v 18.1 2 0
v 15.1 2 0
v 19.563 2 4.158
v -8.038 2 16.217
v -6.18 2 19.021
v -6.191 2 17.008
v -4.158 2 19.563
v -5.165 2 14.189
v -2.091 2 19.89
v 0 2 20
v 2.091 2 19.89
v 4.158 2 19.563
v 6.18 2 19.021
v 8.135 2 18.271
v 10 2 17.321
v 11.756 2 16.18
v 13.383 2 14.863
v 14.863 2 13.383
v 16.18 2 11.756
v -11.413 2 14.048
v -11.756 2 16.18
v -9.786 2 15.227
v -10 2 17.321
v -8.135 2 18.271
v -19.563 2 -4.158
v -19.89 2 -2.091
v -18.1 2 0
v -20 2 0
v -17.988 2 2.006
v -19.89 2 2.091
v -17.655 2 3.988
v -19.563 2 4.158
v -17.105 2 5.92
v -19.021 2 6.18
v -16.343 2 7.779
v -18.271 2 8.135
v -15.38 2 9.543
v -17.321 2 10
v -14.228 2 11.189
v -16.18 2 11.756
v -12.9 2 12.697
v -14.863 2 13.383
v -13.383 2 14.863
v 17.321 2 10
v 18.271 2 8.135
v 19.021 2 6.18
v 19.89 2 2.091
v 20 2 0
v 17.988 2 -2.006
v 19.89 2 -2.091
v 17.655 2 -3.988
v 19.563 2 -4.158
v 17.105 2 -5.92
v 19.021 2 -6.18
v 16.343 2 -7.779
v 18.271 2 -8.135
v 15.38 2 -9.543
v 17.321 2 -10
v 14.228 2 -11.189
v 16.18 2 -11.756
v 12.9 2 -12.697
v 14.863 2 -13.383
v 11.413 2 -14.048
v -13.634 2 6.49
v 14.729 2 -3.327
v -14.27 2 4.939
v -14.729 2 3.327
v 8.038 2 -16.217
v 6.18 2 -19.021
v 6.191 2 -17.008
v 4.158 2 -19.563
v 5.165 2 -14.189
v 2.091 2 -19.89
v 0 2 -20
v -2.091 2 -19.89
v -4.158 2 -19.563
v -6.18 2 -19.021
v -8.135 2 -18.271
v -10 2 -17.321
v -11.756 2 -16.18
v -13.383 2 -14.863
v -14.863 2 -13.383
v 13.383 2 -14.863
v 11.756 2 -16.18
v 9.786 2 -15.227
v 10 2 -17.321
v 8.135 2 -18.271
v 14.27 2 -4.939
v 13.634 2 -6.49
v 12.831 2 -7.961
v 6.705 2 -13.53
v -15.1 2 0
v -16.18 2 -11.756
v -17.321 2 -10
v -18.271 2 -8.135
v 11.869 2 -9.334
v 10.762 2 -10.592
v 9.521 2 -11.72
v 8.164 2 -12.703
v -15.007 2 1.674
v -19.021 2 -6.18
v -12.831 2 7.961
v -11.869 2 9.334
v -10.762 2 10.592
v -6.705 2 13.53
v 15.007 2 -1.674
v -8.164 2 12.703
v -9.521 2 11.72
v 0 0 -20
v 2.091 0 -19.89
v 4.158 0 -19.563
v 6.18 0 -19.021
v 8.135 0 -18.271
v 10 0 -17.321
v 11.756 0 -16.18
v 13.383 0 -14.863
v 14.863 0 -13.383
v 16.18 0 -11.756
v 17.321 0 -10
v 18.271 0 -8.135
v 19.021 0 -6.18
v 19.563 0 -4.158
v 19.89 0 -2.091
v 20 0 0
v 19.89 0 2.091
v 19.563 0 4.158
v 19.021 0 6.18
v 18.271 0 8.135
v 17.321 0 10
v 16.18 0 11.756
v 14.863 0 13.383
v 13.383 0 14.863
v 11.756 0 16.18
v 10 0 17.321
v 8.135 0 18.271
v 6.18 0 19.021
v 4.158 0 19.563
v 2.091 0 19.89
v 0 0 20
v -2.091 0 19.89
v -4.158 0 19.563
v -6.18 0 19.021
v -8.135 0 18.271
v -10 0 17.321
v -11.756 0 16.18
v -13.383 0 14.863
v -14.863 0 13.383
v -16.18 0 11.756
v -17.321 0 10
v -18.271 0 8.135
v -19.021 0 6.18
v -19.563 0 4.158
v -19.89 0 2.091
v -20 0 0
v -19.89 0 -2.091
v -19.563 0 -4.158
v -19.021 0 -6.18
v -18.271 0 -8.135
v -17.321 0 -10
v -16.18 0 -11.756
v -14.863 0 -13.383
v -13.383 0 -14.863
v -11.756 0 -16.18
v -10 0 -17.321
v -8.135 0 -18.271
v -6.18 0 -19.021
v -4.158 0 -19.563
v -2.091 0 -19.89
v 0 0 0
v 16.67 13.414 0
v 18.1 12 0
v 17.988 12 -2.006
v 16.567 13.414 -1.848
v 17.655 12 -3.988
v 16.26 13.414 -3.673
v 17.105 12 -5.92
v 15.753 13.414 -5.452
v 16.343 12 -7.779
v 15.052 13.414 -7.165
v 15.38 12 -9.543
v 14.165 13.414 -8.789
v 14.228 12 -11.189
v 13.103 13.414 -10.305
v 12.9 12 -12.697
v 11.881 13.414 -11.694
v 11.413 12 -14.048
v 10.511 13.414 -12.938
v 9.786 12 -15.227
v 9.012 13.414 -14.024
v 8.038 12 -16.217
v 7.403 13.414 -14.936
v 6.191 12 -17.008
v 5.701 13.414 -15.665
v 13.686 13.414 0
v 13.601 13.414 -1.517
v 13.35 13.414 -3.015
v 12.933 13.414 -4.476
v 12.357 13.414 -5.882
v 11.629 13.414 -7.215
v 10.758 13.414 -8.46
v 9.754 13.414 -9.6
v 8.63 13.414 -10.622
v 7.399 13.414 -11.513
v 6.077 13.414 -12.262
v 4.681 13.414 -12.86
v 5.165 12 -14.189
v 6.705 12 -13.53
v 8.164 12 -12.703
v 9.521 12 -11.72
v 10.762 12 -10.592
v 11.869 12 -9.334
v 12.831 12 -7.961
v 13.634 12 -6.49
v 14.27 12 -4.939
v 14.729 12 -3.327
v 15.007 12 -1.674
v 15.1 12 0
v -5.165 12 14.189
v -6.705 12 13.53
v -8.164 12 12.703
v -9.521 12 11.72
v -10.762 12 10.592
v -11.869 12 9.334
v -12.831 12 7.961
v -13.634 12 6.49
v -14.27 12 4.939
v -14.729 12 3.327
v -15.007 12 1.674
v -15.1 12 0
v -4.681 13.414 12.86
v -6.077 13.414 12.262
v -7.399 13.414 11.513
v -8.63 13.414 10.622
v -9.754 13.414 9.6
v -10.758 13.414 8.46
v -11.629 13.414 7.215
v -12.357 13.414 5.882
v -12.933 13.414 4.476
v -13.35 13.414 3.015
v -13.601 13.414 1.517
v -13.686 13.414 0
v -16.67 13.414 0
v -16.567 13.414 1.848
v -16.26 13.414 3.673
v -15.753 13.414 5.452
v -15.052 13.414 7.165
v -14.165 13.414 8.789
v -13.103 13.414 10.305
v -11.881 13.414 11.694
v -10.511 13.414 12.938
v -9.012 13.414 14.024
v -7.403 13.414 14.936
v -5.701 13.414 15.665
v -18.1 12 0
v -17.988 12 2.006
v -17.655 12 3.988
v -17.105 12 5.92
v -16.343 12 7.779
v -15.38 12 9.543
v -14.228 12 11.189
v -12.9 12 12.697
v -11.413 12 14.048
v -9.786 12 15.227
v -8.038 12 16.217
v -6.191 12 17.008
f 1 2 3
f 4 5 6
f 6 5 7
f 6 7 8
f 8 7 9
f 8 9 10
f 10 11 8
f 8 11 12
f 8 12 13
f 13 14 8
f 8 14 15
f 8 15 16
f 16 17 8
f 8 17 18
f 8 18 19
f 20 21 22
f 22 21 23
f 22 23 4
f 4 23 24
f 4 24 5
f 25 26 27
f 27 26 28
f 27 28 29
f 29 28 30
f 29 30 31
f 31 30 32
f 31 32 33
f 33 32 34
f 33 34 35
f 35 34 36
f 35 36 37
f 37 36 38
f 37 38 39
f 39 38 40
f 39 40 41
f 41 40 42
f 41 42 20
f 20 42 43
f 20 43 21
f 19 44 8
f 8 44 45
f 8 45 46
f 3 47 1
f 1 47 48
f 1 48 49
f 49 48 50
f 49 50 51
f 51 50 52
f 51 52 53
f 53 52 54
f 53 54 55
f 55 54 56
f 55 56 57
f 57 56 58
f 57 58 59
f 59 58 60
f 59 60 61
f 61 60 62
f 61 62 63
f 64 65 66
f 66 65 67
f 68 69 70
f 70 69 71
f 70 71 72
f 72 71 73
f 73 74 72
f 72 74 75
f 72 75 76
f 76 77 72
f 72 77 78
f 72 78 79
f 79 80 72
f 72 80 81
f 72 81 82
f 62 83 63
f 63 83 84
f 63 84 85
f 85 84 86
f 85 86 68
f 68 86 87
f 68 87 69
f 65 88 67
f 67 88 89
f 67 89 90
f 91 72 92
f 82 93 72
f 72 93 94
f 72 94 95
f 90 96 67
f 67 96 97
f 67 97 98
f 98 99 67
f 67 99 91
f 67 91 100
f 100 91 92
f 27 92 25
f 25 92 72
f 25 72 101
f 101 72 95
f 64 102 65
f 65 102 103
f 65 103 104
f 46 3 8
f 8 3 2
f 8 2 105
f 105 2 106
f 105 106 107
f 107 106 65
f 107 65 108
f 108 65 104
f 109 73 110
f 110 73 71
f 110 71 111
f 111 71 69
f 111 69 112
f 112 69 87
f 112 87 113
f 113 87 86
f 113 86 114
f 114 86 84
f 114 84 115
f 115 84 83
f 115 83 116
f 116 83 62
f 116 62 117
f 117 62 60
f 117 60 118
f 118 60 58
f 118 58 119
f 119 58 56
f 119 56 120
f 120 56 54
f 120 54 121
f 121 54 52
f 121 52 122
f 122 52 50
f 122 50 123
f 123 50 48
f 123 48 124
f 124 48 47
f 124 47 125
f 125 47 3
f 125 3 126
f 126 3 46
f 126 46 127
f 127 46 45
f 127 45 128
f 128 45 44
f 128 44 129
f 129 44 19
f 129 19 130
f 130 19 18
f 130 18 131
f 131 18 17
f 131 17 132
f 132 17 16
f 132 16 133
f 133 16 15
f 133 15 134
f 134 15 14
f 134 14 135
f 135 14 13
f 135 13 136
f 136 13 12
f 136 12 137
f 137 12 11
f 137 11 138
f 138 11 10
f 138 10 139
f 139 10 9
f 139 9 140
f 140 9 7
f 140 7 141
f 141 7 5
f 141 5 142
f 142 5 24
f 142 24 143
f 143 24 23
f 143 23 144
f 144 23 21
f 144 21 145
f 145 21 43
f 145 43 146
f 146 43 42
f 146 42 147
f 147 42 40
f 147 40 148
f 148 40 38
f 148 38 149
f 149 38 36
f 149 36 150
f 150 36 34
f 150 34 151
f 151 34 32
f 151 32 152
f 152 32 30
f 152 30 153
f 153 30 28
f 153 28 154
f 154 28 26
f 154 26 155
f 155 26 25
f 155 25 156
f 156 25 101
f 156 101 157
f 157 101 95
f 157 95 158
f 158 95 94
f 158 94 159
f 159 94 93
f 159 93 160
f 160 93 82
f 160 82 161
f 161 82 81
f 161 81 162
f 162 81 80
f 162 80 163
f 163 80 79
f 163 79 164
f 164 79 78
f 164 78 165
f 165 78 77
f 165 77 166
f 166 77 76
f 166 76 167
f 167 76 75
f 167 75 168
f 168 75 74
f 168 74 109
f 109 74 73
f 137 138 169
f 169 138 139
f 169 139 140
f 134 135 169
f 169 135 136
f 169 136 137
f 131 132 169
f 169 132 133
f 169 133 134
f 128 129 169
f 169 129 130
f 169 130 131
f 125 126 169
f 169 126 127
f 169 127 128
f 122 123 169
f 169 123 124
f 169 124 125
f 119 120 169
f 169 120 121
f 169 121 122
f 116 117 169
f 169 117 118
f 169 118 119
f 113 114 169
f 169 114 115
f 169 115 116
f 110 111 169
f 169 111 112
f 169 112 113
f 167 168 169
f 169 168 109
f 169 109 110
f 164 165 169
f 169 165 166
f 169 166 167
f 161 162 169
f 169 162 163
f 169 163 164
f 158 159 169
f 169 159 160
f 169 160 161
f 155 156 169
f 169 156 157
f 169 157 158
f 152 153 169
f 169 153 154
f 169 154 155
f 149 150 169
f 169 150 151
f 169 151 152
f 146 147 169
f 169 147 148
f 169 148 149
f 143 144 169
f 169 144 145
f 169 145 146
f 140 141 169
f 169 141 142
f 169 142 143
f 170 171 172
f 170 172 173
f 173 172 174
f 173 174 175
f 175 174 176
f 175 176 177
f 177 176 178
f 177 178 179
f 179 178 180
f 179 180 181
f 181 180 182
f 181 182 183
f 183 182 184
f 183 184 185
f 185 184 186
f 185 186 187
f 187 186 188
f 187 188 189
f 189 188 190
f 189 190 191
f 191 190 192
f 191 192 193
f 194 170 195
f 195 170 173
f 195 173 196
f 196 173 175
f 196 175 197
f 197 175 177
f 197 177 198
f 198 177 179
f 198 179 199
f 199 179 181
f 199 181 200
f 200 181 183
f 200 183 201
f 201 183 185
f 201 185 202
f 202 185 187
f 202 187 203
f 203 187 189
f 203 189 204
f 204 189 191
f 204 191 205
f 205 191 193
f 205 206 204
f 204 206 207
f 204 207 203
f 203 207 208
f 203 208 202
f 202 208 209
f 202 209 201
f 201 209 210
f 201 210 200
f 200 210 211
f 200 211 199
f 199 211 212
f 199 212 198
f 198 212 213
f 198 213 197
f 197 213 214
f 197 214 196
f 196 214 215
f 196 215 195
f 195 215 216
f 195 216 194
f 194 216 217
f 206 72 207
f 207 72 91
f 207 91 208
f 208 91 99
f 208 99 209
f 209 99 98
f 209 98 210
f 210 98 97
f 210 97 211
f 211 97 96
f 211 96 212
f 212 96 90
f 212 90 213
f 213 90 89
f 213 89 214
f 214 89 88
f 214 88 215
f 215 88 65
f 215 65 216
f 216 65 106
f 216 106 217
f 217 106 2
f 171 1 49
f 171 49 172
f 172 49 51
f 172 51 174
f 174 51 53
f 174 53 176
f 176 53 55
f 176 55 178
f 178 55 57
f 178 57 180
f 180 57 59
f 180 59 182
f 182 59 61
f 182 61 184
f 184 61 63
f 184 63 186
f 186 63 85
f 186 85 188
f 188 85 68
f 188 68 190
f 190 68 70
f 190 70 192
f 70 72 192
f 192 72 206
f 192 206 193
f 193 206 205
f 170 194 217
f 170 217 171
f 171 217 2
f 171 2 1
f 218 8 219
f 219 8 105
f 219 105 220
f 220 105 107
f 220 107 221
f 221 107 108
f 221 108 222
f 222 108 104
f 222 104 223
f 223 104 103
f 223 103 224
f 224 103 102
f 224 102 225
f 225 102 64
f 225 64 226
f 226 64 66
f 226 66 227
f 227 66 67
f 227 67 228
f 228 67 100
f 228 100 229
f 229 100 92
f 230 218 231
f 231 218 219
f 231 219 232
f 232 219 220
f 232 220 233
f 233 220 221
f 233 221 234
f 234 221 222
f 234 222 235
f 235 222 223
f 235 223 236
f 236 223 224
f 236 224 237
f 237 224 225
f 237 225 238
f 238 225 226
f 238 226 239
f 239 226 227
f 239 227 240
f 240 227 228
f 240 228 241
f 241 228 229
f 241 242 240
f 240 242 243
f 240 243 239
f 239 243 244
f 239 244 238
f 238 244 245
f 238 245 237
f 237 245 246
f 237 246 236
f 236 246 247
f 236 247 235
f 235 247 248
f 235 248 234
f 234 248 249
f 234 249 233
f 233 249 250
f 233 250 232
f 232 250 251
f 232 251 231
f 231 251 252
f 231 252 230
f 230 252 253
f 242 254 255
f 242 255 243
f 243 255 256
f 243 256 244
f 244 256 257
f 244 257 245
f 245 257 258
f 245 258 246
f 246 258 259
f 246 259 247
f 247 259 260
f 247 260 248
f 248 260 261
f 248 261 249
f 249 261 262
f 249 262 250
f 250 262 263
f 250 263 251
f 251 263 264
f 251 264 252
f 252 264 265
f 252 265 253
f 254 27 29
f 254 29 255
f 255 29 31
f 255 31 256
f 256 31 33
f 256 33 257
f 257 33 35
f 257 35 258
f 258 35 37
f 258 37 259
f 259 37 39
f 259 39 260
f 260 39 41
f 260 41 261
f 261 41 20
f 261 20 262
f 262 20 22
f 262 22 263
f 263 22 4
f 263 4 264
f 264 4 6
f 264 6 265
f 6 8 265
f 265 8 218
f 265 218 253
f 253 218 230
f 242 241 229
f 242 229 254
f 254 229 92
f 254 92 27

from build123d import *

# Parameters (mm, degrees)
SKETCH1_R           = 20
BOSS_EXTRUDE1_DEPTH = 2
REVOLVE1_ANGLE      = 70


with BuildPart() as part:
    # Sketch1 → Boss-Extrude1 (new body)
    with BuildSketch(Plane(origin=(0, 0, 0), x_dir=(1, 0, 0), z_dir=(0, 1, 0))):
        with Locations(Location((0, 0, 0), (0, 0, 270))):
            Circle(SKETCH1_R)
    extrude(amount=BOSS_EXTRUDE1_DEPTH)

    # Sketch2 → Revolve1 (revolve)
    with BuildSketch(Plane.XY):
        Polygon((18.1, 12), (16.669921141, 13.414213562), (13.685786438, 13.414213562), (15.1, 12), (15.1, 2), (18.1, 2), align=None)
        Polygon((-15.1, 2), (-15.1, 12), (-13.685786438, 13.414213562), (-16.669921141, 13.414213562), (-18.1, 12), (-18.1, 2), align=None)
    revolve(axis=Axis((0, 0, 0), (0, 1, 0)), revolution_arc=REVOLVE1_ANGLE)


solid = part.part
